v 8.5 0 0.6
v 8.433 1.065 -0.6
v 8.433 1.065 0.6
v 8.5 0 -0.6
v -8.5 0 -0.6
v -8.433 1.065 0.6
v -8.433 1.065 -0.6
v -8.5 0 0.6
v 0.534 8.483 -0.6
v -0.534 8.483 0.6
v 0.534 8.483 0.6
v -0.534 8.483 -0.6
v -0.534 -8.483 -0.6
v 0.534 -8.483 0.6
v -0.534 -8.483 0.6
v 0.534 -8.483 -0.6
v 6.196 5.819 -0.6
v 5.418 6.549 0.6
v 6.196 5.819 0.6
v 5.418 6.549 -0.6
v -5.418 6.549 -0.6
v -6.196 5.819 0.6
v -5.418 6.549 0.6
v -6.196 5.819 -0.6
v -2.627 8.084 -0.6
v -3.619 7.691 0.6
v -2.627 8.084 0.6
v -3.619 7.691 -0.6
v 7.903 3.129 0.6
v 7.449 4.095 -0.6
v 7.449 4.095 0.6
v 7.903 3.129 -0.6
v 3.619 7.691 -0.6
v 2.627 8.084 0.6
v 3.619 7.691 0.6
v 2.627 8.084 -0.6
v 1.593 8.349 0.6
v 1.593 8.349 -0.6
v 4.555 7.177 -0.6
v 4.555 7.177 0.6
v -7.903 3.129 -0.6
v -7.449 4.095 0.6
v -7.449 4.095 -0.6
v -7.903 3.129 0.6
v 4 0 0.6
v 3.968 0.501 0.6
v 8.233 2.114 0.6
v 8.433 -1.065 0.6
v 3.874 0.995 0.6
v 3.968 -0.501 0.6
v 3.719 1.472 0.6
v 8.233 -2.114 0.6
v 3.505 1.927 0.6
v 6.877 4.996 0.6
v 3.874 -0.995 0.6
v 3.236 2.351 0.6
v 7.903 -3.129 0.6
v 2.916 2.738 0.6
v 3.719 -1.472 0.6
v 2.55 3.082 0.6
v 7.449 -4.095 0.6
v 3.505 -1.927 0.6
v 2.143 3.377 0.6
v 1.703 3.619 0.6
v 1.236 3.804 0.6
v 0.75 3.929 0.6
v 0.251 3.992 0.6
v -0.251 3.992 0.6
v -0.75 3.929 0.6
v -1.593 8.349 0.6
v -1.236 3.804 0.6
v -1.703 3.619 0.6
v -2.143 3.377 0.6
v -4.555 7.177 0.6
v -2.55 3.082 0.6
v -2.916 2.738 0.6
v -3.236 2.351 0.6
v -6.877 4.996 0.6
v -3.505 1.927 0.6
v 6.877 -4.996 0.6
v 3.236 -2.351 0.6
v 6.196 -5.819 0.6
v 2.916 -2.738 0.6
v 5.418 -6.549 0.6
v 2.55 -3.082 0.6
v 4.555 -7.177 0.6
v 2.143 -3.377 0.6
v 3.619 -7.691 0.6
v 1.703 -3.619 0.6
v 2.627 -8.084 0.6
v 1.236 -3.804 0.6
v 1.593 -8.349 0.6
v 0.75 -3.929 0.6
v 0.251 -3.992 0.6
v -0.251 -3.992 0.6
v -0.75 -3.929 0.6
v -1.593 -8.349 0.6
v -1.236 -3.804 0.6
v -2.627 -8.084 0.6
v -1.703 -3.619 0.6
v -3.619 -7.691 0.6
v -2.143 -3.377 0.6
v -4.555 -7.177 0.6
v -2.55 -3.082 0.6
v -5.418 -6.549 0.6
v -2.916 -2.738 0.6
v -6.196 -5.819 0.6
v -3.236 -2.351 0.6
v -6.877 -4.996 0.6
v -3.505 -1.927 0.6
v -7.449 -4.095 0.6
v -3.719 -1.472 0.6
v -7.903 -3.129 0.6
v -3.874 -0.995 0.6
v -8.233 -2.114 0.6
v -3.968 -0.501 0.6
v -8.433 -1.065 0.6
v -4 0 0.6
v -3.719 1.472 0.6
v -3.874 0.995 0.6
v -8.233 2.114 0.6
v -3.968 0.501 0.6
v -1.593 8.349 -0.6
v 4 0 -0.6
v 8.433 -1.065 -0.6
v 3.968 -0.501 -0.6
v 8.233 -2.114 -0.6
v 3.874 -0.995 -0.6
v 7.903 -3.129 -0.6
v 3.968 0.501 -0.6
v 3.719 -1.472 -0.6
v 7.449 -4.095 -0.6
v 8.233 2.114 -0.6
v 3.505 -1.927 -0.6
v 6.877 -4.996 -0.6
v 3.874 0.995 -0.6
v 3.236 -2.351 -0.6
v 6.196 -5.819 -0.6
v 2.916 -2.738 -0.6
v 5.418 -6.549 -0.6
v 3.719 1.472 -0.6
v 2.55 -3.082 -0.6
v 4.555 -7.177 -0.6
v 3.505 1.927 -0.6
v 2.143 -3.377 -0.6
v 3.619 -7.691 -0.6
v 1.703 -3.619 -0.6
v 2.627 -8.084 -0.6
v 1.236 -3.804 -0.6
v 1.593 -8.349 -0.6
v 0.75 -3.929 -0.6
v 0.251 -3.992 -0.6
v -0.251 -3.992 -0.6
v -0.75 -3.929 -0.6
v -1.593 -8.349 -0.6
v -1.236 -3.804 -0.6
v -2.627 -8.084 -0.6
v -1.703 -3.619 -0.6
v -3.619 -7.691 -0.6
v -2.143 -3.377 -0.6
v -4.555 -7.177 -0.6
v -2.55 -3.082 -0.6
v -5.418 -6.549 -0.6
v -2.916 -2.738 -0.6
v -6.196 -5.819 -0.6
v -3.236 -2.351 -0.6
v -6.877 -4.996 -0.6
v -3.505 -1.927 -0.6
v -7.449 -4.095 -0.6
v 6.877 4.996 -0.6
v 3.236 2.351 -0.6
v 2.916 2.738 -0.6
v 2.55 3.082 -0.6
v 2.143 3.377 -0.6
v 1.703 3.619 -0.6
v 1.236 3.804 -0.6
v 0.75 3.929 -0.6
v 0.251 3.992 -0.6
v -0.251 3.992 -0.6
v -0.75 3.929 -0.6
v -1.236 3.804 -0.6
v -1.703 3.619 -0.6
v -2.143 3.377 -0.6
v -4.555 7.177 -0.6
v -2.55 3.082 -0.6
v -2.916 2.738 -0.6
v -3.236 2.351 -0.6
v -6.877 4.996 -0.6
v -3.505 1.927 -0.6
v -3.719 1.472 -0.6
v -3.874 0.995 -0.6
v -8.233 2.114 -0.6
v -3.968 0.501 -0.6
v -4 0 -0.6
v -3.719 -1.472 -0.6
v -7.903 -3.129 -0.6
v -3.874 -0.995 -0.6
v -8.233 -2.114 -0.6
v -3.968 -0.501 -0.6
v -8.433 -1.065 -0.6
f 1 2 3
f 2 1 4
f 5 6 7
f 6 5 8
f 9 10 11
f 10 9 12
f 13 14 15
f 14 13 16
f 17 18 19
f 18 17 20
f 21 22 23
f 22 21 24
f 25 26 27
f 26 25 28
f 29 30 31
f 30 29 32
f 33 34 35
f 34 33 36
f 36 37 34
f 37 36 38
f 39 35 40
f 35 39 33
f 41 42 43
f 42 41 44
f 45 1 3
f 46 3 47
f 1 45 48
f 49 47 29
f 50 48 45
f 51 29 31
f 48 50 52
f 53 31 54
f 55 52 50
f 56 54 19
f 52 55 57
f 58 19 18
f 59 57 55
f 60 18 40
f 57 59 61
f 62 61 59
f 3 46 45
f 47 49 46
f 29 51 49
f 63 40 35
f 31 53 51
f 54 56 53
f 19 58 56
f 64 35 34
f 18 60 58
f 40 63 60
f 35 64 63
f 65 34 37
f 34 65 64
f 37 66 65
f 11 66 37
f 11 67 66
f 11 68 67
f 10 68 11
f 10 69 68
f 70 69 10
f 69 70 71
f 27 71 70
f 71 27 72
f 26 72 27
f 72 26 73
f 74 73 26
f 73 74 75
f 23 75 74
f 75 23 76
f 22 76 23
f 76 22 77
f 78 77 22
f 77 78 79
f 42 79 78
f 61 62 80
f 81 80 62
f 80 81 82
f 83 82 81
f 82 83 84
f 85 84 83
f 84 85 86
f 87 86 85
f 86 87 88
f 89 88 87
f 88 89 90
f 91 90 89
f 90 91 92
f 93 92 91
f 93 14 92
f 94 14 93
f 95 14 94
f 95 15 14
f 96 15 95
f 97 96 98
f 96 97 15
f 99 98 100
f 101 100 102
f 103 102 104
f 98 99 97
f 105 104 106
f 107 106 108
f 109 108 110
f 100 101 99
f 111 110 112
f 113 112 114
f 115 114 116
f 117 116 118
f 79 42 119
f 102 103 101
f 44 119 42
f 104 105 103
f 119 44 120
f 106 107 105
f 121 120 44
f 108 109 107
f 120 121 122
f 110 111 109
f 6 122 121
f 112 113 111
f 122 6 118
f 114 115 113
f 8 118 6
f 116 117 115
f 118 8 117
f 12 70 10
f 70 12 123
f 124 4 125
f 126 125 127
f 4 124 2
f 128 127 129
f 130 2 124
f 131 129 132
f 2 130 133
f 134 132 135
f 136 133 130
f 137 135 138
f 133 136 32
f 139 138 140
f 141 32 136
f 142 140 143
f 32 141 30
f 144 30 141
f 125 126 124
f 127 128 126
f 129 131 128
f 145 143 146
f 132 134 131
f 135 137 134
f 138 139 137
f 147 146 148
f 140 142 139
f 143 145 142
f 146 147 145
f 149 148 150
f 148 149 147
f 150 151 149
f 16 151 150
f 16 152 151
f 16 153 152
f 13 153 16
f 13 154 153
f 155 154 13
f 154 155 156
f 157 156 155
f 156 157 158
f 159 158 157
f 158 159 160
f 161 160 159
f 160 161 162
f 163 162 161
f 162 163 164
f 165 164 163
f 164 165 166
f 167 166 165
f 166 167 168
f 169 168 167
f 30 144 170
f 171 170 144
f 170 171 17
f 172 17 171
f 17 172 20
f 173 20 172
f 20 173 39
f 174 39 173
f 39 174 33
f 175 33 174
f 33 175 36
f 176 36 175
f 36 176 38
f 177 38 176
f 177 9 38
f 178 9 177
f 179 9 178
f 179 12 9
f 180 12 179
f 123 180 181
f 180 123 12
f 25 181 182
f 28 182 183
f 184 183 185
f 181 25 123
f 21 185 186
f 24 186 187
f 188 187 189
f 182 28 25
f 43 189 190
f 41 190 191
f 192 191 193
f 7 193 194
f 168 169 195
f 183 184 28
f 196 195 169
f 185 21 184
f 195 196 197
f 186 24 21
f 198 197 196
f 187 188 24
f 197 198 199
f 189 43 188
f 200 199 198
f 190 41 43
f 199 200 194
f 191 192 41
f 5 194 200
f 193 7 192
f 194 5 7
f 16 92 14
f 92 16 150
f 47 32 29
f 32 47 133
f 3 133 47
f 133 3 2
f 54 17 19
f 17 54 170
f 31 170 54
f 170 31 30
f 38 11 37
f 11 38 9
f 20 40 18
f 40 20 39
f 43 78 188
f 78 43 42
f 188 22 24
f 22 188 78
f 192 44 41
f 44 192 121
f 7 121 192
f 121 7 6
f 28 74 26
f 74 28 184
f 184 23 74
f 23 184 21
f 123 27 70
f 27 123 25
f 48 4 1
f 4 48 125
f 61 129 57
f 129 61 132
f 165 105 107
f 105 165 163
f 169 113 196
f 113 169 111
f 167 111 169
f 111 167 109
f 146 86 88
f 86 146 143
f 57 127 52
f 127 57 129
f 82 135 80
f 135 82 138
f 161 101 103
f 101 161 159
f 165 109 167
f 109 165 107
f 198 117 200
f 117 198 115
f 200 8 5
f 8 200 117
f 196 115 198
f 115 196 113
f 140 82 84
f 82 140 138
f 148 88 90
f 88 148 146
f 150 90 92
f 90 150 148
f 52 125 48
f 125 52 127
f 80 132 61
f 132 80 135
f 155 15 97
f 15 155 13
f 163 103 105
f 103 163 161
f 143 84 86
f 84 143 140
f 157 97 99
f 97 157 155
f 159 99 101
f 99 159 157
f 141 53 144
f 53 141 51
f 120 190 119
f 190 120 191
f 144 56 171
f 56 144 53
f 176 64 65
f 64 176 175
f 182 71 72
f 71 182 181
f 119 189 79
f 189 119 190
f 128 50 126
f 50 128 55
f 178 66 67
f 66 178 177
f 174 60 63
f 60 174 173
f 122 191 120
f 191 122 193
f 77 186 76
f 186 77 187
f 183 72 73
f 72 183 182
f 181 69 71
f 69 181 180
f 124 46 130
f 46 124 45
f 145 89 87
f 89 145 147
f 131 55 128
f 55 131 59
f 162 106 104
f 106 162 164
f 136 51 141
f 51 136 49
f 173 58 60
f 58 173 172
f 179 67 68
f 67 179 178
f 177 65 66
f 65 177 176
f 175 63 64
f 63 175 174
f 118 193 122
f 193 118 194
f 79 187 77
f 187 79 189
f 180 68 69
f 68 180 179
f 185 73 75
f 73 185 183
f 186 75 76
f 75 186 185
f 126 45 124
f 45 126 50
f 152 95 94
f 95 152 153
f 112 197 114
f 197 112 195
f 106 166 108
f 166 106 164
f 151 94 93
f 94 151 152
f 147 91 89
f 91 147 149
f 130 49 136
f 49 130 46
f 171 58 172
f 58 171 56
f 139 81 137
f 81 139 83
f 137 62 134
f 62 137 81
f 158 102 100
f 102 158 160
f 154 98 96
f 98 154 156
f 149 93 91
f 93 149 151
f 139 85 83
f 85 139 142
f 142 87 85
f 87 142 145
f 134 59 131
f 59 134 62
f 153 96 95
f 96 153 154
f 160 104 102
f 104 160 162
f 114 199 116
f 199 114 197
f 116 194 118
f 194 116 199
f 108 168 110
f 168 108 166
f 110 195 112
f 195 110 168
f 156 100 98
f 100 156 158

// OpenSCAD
difference(){
    cylinder(d=17, h=.4*3, center=true, $fn=50);
    cylinder(d=8, h=2*2, center=true, $fn=50);
}
